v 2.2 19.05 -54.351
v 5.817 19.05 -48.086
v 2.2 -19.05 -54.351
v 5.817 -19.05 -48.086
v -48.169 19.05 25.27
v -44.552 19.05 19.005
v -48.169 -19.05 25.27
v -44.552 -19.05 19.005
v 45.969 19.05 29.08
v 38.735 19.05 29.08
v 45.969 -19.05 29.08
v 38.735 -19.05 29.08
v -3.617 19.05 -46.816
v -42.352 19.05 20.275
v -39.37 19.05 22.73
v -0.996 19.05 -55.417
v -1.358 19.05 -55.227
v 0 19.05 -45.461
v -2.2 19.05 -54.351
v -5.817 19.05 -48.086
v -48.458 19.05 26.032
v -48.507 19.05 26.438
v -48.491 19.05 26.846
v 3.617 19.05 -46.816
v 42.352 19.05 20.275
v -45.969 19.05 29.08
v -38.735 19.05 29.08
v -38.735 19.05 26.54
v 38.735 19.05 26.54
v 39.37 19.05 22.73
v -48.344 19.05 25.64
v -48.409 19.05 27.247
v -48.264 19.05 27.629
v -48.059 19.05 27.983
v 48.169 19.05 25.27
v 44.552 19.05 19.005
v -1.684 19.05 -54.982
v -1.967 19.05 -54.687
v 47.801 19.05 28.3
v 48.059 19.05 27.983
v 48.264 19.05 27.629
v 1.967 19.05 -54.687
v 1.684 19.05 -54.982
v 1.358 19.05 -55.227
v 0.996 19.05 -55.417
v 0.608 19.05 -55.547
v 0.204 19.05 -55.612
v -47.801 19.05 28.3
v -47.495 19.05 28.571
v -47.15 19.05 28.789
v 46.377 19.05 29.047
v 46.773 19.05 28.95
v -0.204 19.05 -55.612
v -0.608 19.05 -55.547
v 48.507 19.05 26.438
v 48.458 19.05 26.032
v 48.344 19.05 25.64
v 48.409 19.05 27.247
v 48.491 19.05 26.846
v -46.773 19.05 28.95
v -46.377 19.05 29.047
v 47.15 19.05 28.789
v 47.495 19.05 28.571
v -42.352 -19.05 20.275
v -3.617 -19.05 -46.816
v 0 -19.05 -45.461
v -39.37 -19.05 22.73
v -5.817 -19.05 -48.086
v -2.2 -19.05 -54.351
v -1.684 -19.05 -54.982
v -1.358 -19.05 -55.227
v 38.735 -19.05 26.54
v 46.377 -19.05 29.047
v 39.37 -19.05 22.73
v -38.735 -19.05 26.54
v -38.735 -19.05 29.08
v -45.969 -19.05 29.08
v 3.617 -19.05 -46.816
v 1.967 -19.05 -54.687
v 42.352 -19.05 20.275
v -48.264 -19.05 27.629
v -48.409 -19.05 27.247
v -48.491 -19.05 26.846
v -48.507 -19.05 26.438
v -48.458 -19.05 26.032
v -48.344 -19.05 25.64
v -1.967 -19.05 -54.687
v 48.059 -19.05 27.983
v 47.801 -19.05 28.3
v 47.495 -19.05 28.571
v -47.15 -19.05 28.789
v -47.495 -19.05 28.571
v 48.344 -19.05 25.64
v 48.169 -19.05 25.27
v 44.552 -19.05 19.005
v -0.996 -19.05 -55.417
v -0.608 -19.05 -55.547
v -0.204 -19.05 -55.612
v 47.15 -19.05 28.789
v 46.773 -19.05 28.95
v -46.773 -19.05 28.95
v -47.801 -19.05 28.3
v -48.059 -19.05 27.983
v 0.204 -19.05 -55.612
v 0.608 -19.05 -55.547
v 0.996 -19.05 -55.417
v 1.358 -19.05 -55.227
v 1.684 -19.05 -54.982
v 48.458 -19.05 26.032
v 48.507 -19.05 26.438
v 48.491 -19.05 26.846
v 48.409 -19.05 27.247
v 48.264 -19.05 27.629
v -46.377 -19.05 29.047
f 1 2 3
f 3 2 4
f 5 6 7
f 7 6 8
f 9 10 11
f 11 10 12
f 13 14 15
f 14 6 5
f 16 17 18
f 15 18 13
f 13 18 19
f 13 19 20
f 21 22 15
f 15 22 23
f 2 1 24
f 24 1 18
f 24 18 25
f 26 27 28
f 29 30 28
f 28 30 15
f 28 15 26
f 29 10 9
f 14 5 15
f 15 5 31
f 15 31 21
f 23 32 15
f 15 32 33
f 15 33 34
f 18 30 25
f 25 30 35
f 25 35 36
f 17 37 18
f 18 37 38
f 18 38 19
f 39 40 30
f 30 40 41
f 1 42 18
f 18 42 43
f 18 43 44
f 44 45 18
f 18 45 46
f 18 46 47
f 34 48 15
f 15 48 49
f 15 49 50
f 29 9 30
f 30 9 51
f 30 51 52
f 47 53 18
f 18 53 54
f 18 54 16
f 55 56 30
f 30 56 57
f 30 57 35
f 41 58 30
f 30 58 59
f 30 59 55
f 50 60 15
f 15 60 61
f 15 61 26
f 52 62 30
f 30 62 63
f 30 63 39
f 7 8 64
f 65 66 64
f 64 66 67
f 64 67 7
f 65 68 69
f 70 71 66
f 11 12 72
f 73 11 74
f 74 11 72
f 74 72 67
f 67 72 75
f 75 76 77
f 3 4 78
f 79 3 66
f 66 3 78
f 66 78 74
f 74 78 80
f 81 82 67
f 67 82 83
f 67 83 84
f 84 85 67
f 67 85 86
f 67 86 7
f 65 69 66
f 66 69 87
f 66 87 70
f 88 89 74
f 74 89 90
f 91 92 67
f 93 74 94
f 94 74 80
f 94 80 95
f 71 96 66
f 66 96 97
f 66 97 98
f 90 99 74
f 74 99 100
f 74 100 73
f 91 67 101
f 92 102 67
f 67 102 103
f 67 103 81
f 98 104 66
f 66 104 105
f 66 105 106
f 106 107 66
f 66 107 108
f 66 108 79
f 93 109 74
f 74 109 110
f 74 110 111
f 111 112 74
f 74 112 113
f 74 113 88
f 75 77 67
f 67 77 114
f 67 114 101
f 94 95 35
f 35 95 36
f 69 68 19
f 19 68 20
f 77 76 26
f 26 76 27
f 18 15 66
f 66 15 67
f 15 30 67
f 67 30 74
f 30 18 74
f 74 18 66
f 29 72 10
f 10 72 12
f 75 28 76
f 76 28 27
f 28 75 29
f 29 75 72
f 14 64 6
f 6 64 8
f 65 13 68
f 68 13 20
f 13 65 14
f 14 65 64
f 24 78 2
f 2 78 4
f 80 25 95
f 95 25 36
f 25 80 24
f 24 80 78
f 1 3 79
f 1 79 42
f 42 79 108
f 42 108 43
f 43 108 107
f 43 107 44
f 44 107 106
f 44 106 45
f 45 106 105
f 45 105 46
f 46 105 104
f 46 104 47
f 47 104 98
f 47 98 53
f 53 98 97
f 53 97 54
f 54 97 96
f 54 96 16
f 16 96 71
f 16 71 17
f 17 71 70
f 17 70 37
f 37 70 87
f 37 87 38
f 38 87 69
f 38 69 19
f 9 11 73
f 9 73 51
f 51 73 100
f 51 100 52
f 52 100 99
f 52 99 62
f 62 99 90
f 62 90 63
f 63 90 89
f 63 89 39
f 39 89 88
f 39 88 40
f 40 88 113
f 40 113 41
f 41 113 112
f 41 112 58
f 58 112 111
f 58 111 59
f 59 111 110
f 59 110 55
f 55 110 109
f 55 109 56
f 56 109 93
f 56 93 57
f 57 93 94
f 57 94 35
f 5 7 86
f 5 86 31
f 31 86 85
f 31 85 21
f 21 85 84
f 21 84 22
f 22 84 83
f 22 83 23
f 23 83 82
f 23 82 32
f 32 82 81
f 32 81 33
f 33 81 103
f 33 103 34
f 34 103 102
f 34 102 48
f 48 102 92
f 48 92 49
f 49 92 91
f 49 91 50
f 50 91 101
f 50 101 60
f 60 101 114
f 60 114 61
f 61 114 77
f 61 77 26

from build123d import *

# Parameters (mm, degrees)
BOSS_EXTRUDE1_DEPTH = 19.05
SKETCH3_W           = 77.47
SKETCH3_H           = 38.1
CUT_EXTRUDE1_DEPTH  = 2.54
CIRPATTERN1_COUNT   = 3
FILLET1_R           = 2.54


with BuildPart() as part:
    # Sketch1 → Boss-Extrude1 (new body, symmetric)
    with BuildSketch(Plane(origin=(0, 0, 0), x_dir=(1, 0, 0), z_dir=(0, 1, 0))):
        Polygon((0, 58.160560196), (-50.368522628, -29.080280098), (50.368522628, -29.080280098), align=None)
        Polygon((-39.37, -22.730280098), (39.37, -22.730280098), (0, 45.460560196), align=None, mode=Mode.SUBTRACT)
    extrude(amount=BOSS_EXTRUDE1_DEPTH, both=True)

    # Sketch3 → Cut-Extrude1 (cut)
    with BuildSketch(Plane.XY.offset(29.080280098)):
        Rectangle(SKETCH3_W, SKETCH3_H)
    cut_extrude1 = extrude(amount=-CUT_EXTRUDE1_DEPTH, mode=Mode.SUBTRACT)

    # CirPattern1: Cut-Extrude1 ×3 about axis
    cirpattern1_axis = Axis((0, 0, 0), (0, 1, 0))
    for i in range(1, CIRPATTERN1_COUNT):
        add(cut_extrude1.rotate(cirpattern1_axis, i * 360 / CIRPATTERN1_COUNT), mode=Mode.SUBTRACT)

    # Fillet1
    fillet1_edges = [part.edges().sort_by_distance(p)[0] for p in [
        (50.368522628, 0, 29.080280098),
        (-50.368522628, 0, 29.080280098),
        (0, 0, -58.160560196),
    ]]
    fillet(fillet1_edges, radius=FILLET1_R)


solid = part.part
